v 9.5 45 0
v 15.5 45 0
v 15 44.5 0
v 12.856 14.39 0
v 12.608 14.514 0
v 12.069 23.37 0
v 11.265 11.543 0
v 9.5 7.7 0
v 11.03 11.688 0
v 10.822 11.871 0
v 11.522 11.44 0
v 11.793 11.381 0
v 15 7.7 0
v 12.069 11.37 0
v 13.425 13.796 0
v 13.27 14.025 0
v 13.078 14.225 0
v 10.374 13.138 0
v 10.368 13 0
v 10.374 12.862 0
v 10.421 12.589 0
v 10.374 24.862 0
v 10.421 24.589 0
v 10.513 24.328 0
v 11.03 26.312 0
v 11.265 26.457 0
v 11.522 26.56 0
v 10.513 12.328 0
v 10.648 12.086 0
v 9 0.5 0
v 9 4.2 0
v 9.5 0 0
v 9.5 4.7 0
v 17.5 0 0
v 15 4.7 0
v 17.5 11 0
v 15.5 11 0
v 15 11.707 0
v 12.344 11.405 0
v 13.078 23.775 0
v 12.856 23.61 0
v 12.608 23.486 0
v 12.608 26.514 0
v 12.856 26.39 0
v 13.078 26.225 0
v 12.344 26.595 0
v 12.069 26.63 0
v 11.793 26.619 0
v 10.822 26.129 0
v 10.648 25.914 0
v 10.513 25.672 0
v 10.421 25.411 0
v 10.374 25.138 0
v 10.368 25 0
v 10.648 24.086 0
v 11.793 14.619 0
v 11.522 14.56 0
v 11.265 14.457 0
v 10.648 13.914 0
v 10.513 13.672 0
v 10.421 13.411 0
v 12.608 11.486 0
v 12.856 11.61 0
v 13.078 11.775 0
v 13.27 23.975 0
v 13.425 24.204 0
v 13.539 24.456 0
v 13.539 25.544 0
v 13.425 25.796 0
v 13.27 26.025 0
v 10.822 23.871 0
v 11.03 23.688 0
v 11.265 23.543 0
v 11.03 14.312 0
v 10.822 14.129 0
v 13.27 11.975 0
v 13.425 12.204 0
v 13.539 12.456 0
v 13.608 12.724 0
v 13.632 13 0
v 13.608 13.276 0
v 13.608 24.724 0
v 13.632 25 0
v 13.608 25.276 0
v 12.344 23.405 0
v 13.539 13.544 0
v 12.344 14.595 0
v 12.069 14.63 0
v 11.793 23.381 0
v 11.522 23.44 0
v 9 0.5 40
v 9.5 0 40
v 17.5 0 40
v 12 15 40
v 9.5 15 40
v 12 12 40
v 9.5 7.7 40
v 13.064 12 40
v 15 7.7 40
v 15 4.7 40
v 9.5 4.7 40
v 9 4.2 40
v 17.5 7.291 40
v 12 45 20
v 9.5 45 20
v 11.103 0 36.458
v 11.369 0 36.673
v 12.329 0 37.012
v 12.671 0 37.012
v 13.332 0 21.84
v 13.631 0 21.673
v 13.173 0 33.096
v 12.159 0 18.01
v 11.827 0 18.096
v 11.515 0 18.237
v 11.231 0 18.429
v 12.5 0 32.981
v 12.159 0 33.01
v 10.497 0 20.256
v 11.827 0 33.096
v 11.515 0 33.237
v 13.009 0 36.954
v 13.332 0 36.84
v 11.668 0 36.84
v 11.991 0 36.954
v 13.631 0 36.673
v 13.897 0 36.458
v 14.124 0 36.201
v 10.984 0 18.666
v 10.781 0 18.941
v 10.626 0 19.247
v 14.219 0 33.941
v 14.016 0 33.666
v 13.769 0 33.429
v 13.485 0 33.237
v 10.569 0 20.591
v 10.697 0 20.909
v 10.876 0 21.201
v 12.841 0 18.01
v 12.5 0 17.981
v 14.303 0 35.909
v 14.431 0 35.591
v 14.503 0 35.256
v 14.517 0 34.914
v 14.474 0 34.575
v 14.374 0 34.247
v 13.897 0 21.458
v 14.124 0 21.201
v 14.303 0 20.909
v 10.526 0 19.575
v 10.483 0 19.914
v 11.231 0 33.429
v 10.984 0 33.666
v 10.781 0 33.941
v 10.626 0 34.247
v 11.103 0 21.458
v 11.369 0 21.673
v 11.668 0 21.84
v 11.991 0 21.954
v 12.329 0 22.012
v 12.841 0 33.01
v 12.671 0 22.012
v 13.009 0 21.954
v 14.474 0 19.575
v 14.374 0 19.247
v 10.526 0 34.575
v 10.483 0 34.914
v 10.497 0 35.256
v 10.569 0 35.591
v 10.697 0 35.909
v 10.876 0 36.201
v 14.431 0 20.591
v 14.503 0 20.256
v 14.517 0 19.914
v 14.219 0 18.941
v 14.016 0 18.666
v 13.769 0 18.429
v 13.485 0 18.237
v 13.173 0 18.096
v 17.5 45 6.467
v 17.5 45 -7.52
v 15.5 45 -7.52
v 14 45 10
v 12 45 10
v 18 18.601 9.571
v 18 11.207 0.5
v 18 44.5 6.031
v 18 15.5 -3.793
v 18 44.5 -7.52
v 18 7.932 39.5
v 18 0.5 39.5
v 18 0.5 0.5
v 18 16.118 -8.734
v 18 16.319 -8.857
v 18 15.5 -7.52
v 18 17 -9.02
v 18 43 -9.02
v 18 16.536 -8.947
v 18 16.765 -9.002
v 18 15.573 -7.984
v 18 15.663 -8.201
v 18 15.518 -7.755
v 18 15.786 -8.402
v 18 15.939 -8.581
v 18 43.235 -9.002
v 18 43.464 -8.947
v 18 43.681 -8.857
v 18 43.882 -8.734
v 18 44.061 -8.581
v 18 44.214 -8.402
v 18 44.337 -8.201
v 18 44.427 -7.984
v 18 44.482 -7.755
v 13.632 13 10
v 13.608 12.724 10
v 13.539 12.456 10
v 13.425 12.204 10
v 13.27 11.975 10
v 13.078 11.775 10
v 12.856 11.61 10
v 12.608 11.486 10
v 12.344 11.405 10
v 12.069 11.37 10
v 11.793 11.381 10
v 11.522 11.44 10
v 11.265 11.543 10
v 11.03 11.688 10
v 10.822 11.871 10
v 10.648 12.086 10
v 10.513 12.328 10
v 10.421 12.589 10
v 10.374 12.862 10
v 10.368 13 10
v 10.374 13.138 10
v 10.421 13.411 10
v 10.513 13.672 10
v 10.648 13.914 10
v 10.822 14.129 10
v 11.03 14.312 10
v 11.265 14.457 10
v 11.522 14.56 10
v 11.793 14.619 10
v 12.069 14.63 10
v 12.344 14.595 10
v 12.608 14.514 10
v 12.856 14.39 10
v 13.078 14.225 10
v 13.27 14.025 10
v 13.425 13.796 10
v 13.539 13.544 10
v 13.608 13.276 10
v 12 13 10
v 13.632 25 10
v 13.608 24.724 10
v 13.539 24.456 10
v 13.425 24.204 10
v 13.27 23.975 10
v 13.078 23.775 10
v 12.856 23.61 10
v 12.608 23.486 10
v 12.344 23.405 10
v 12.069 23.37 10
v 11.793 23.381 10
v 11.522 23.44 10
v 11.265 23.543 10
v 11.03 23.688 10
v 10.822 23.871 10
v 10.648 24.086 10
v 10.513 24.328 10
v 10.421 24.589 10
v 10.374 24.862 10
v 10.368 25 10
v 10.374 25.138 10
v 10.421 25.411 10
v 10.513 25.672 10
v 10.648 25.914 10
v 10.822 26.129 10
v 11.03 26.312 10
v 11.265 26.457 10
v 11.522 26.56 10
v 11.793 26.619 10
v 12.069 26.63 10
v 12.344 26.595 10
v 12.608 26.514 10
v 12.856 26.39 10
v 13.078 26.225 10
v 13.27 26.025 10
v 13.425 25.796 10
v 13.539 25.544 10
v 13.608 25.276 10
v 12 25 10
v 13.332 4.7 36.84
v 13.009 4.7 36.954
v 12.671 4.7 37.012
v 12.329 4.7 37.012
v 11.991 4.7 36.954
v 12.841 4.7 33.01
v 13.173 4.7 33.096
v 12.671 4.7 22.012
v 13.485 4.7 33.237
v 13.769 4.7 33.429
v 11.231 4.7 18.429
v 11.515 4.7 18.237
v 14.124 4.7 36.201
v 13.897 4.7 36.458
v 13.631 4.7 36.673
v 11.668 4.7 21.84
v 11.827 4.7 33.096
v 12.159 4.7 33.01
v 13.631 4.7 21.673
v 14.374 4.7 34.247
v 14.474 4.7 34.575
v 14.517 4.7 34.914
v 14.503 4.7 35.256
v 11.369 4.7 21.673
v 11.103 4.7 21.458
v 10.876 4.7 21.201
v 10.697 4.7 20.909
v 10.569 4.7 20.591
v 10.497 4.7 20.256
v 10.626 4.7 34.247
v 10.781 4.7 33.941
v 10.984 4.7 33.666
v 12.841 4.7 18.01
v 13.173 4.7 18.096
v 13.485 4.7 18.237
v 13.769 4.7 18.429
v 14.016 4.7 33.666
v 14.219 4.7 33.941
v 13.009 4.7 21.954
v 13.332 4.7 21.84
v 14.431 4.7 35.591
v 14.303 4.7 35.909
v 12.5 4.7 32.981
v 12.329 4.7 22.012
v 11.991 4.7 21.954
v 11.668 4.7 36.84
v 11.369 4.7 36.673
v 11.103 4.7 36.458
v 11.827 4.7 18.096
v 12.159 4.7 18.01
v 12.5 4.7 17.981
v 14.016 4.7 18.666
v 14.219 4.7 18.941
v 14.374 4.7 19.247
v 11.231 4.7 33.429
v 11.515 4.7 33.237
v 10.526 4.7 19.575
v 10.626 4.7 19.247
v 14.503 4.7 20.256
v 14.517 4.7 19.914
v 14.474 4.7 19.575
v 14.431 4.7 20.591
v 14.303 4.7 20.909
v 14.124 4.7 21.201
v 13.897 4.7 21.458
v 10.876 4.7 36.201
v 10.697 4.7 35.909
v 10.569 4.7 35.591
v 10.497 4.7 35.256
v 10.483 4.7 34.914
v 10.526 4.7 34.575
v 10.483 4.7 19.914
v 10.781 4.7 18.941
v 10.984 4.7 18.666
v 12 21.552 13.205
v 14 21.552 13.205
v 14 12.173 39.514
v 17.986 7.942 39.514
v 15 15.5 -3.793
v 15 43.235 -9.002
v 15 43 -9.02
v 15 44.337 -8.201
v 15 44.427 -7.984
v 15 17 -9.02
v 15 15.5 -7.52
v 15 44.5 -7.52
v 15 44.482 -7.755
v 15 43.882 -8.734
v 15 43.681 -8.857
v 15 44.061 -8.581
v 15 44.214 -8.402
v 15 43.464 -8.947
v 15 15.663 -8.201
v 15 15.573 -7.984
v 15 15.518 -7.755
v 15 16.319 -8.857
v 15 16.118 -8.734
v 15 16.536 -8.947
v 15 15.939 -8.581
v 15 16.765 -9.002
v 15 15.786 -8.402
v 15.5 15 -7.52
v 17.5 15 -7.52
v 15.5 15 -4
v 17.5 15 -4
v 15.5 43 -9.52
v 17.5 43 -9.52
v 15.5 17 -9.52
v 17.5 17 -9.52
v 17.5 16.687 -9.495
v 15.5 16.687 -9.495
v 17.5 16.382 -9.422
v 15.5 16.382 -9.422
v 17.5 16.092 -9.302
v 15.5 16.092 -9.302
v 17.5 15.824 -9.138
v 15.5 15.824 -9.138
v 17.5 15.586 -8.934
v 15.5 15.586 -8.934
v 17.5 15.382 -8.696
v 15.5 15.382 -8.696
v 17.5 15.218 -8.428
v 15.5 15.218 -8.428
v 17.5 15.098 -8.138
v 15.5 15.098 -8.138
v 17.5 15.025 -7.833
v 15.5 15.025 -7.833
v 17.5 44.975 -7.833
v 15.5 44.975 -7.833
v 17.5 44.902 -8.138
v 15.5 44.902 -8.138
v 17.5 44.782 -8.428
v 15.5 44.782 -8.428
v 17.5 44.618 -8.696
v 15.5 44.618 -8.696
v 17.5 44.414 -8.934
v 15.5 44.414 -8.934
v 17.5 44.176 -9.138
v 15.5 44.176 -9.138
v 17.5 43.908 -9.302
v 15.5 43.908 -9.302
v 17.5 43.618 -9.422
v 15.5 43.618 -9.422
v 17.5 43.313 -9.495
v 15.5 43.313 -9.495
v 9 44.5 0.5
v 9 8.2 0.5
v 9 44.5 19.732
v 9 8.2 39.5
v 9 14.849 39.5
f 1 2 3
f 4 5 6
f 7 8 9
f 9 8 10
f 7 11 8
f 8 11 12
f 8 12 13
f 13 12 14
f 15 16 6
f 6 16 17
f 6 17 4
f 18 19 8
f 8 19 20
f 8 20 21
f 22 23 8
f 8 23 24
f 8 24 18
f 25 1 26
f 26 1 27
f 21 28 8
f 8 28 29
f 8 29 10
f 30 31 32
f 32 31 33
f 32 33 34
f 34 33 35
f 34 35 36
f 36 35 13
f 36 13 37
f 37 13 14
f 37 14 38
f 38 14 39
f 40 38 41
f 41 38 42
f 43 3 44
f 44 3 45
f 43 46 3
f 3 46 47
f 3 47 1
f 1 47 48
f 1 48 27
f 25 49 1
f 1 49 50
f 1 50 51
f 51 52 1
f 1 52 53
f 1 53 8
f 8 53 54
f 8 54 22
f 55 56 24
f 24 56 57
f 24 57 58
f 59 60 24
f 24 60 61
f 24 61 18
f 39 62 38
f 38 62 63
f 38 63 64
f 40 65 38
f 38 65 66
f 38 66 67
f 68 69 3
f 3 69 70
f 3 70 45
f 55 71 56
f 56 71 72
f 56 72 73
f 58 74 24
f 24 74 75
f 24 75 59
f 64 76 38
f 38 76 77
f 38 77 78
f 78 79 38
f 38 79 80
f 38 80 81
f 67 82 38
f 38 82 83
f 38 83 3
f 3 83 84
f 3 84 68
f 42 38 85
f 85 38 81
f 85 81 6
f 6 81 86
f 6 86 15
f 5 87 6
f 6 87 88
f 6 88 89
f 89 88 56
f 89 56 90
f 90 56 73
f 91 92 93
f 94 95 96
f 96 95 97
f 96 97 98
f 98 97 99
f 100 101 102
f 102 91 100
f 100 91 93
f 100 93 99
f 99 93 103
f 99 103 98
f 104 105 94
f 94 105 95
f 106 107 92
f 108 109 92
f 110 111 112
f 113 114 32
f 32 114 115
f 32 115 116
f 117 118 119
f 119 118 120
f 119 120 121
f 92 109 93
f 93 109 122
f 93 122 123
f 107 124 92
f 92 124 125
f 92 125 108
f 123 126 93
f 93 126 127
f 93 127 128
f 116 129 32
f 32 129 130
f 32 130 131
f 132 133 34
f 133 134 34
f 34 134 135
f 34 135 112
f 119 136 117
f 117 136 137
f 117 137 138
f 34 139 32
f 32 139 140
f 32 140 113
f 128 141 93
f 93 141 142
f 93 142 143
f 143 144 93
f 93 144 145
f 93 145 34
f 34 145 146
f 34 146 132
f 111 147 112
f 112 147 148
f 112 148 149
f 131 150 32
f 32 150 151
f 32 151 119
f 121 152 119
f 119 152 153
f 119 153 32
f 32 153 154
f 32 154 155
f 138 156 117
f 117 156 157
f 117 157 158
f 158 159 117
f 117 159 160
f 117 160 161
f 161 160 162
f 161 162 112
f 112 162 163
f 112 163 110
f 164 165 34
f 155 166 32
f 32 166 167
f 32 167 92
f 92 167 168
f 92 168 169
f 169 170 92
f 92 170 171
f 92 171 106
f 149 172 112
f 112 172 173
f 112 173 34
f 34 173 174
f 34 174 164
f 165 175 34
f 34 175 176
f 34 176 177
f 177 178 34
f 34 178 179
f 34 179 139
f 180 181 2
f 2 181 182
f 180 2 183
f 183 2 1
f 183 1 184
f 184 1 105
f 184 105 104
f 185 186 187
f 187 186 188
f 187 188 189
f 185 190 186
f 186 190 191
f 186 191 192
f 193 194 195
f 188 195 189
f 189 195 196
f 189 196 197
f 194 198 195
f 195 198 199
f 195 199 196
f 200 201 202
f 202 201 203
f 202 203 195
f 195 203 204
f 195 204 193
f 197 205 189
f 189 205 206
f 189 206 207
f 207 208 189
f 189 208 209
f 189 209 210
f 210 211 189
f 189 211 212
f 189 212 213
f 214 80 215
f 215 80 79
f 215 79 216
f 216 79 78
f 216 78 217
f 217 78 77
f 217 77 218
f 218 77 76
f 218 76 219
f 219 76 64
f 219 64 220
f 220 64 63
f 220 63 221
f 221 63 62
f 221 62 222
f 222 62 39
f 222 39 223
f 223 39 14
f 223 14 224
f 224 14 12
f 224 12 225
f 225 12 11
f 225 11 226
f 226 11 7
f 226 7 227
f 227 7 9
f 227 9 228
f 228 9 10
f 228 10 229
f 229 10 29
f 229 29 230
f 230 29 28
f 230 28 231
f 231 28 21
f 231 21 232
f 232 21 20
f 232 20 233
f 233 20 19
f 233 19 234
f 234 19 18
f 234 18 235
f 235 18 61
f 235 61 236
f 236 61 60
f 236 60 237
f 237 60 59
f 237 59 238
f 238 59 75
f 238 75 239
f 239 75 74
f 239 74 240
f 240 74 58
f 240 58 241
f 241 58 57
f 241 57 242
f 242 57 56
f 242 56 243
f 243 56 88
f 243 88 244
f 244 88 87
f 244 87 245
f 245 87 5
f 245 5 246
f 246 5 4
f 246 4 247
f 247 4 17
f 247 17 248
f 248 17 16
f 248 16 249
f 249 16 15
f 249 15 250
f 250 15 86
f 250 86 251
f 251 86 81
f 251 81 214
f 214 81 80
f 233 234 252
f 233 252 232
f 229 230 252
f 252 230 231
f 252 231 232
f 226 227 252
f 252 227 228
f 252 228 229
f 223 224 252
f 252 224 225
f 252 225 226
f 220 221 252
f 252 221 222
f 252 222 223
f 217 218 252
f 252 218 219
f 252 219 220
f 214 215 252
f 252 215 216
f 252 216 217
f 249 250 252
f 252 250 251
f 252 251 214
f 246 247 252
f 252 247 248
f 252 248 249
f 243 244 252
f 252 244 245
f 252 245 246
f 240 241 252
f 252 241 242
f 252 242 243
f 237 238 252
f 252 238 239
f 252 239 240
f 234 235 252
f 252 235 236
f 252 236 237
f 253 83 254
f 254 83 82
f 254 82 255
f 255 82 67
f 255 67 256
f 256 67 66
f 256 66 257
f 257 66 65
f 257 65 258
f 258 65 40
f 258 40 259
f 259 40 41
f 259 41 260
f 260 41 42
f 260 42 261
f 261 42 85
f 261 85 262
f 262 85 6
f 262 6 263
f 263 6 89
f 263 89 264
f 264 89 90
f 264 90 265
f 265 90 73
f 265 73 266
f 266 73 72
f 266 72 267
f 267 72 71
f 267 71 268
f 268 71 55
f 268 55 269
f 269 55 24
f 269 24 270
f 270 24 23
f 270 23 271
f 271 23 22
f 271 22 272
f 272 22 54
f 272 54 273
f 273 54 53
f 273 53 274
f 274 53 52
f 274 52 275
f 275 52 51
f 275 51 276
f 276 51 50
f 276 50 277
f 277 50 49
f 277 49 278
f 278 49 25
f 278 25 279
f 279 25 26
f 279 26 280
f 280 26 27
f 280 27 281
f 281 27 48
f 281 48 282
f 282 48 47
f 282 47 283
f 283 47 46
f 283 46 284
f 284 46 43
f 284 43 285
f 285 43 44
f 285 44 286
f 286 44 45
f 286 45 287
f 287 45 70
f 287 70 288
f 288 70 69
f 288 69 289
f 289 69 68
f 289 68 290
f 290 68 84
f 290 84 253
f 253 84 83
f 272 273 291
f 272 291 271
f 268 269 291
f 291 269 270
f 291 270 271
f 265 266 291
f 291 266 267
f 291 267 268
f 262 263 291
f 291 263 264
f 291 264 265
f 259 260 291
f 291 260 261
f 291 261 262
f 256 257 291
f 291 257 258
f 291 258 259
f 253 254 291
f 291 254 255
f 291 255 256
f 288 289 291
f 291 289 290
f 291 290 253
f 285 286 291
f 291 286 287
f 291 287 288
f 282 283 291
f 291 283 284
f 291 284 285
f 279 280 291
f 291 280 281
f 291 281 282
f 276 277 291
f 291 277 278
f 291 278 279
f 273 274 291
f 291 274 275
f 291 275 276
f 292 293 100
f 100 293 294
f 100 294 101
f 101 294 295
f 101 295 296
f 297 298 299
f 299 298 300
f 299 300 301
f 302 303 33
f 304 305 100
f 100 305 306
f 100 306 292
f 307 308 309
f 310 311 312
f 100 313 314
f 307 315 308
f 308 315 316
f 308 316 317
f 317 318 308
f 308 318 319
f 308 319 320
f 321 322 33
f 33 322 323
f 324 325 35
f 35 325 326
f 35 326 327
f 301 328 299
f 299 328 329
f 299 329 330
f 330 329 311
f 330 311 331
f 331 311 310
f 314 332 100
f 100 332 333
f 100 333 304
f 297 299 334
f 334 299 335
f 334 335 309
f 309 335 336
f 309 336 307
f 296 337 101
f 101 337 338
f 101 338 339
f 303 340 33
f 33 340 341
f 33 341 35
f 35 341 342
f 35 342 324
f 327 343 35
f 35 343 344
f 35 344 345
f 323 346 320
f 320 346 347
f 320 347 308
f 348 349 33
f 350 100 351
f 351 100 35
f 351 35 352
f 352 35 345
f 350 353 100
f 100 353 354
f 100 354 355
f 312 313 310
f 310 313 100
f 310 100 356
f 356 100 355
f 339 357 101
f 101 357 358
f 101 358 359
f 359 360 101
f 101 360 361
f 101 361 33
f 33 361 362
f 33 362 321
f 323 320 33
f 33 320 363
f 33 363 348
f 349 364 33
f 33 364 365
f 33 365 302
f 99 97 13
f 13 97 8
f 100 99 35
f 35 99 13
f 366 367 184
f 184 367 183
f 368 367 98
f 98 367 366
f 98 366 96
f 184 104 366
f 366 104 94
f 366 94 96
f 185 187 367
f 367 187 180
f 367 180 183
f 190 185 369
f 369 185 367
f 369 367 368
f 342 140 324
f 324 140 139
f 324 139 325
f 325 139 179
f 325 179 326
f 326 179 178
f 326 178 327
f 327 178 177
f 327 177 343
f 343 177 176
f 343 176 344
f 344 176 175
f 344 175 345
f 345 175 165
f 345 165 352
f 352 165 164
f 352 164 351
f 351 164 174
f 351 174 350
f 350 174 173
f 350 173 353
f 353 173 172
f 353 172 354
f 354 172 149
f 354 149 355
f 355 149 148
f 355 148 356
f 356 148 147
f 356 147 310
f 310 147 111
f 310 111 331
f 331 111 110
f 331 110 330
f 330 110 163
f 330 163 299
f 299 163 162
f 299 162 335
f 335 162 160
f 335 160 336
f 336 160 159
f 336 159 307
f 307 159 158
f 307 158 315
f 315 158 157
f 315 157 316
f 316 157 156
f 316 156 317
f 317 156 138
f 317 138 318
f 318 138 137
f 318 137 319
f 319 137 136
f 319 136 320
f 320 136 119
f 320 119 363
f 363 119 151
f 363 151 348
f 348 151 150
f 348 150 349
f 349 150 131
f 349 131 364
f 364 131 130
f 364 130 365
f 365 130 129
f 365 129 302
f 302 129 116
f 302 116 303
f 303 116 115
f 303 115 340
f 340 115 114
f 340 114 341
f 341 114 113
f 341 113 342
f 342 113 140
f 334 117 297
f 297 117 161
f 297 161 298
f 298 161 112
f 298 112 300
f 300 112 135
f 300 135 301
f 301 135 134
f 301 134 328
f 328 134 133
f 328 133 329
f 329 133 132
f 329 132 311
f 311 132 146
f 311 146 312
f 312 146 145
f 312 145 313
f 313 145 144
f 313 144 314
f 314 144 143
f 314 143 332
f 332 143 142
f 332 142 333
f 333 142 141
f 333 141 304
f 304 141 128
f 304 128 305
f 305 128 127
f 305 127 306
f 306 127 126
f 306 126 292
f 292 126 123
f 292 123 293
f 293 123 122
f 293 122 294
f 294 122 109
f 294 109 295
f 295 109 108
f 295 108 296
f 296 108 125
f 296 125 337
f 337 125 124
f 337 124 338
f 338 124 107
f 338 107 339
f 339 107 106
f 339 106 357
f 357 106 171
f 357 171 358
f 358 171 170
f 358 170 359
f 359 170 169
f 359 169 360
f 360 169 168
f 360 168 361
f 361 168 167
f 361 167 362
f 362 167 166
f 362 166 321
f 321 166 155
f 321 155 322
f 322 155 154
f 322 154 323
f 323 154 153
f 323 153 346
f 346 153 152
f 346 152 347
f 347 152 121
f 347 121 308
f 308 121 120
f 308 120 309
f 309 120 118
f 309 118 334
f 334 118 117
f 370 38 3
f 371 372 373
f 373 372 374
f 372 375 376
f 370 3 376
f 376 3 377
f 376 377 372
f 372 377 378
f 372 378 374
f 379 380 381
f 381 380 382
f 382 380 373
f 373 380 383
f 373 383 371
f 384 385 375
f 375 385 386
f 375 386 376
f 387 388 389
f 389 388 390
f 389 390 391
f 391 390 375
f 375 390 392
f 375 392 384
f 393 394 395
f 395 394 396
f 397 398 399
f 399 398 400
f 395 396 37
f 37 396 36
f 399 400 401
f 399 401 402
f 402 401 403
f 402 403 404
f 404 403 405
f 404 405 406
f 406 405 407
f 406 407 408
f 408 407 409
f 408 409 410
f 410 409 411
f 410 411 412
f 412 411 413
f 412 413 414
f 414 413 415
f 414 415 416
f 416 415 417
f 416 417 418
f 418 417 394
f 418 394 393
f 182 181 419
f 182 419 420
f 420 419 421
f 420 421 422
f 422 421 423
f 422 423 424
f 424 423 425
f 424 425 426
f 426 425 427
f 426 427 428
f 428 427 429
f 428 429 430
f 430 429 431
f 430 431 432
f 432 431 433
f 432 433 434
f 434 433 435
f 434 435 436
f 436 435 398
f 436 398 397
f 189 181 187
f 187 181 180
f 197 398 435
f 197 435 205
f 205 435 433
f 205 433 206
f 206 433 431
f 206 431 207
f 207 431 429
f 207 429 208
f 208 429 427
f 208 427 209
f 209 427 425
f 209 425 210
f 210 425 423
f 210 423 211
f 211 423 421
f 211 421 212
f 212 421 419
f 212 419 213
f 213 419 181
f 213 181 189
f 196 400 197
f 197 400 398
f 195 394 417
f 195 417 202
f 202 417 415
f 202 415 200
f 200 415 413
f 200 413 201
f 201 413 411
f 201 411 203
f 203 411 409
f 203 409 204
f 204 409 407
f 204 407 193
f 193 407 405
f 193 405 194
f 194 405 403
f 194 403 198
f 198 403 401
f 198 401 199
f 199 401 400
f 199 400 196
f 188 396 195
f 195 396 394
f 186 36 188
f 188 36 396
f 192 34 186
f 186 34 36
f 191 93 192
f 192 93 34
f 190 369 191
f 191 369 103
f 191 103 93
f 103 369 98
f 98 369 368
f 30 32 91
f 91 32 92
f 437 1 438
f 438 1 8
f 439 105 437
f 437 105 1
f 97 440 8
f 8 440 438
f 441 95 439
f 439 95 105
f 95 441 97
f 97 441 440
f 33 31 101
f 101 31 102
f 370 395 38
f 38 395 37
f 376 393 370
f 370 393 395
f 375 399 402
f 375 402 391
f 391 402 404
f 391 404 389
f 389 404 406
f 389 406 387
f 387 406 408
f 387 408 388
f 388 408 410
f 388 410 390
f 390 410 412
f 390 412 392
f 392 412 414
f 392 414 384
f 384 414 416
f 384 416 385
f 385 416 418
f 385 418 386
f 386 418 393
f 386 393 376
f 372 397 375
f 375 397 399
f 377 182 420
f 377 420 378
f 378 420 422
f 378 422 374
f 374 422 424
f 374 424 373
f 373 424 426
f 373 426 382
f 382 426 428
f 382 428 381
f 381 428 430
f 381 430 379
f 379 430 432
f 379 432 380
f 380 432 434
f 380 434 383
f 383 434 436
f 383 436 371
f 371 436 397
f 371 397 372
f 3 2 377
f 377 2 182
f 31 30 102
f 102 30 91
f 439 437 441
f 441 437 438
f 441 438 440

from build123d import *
from OCP.BRepFilletAPI import BRepFilletAPI_MakeChamfer

# Parameters (mm, degrees)
SKETCH1_W           = 9
SKETCH1_H           = 45
SKETCH1_R           = 1.63195
BOSS_EXTRUDE1_DEPTH = 40
SKETCH1_3_R         = 1.63195
CUT_EXTRUDE1_DEPTH  = 10
SKETCH2_W           = 40
SKETCH2_H           = 3
CUT_EXTRUDE2_DEPTH  = 6
CUT_EXTRUDE3_DEPTH  = 9
CUT_EXTRUDE4_DEPTH  = 6
CHAMFER2_SIZE       = 4
SKETCH6_R           = 2.0193
CUT_EXTRUDE5_DEPTH  = 6
SKETCH7_W           = 3
SKETCH7_H           = 30
BOSS_EXTRUDE3_DEPTH = 9.52
CHAMFER3_SIZE       = 4
FILLET1_R           = 2
CHAMFER4_SIZE       = 0.5
CHAMFER4_SIZE2      = 0.681231536
SKETCH8_W           = 73.765636672
SKETCH8_H           = 62.769253432
CUT_EXTRUDE6_DEPTH  = 9


with BuildPart() as part:
    # Sketch1 → Boss-Extrude1 (new body)
    # profile 1 of 3: a face of its own
    with BuildSketch(Plane.XY):
        with Locations((4.5, 22.5)):
            Rectangle(SKETCH1_W, SKETCH1_H)
        with Locations((6, 13)):
            Circle(SKETCH1_R, mode=Mode.SUBTRACT)
        with Locations((6, 25)):
            Circle(SKETCH1_R, mode=Mode.SUBTRACT)
    # profile 2 of 3: a face of its own
    with BuildSketch(Plane.XY):
        with Locations((6, 25)):
            Circle(SKETCH1_R)
    # profile 3 of 3: a face of its own
    with BuildSketch(Plane.XY):
        with Locations((6, 13)):
            Circle(SKETCH1_R)
    extrude(amount=BOSS_EXTRUDE1_DEPTH)

    # Sketch1<3> → Cut-Extrude1 (cut)
    with BuildSketch(Plane.XY):
        with Locations((6, 25)):
            Circle(SKETCH1_3_R)
        with Locations((6, 13)):
            Circle(SKETCH1_3_R)
    extrude(amount=CUT_EXTRUDE1_DEPTH, mode=Mode.SUBTRACT)

    # Sketch2 → Cut-Extrude2 (cut)
    with BuildSketch(Plane(origin=(9, 0, 0), x_dir=(0, 0, -1), z_dir=(1, 0, 0))):
        with Locations((-20, 6.2)):
            Rectangle(SKETCH2_W, SKETCH2_H)
    extrude(amount=-CUT_EXTRUDE2_DEPTH, mode=Mode.SUBTRACT)

    # Sketch3 → Cut-Extrude3 (cut)
    with BuildSketch(Plane(origin=(9, 0, 0), x_dir=(0, 0, -1), z_dir=(1, 0, 0))):
        Polygon((-20, 45), (-40, 15), (-48.379363257, 51.913157268), align=None)
    extrude(amount=-CUT_EXTRUDE3_DEPTH, mode=Mode.SUBTRACT)

    # Sketch5 → Cut-Extrude4 (cut)
    with BuildSketch(Plane.ZY):
        Polygon((20, 45), (10, 45), (13.204776383, 21.55213026), (40, 12), (40, 15), align=None)
    extrude(amount=-CUT_EXTRUDE4_DEPTH, mode=Mode.SUBTRACT)

    # Chamfer2
    chamfer2_edges = [part.edges().sort_by_distance(p)[0] for p in [
        (0, 33.27606513, 11.602388192),
        (0, 16.77606513, 26.602388192),
    ]]
    chamfer(chamfer2_edges, length=CHAMFER2_SIZE)

    # Sketch6 → Cut-Extrude5 (cut)
    with BuildSketch(Plane.XZ):
        with Locations(Location((5.5, 35, 0), (0, 0, 270))):
            Circle(SKETCH6_R)
        with Locations(Location((5.5, 20, 0), (0, 0, 270))):
            Circle(SKETCH6_R)
    extrude(amount=-CUT_EXTRUDE5_DEPTH, mode=Mode.SUBTRACT)

    # Sketch7 → Boss-Extrude3 (add)
    with BuildSketch(Plane(origin=(0, 0, 0), x_dir=(-1, 0, 0), z_dir=(0, 0, -1))):
        with Locations((-1.5, 30)):
            Rectangle(SKETCH7_W, SKETCH7_H)
    extrude(amount=BOSS_EXTRUDE3_DEPTH)

    # Chamfer3
    chamfer3_edges = [part.edges().sort_by_distance(p)[0] for p in [
        (1.5, 15, 0),
    ]]
    chamfer(chamfer3_edges, length=CHAMFER3_SIZE)

    # Fillet1
    fillet1_edges = [part.edges().sort_by_distance(p)[0] for p in [
        (1.5, 45, -9.52),
        (1.5, 15, -9.52),
    ]]
    fillet(fillet1_edges, radius=FILLET1_R)

    # Chamfer4: one chamfer whose edges measure the first distance from different faces: ONE call of the kernel's chamfer builder (chamfer() names one face for all edges)
    chamfer4_edges_1 = [part.edges().sort_by_distance(p)[0] for p in [
        (3, 45, -3.76),
        (3, 44.414213562, -8.934213562),
        (3, 15, -5.76),
        (3, 30, -9.52),
        (3, 15.585786438, -8.934213562),
        (3, 13, -2),
        (9, 7.7, 20),
        (9, 4.7, 20),
        (0, 3.876717178, 40),
        (0, 0, 20),
        (0, 5.5, 0),
        (0, 13, -2),
        (0, 15, -5.76),
        (0, 45, -0.778594073),
        (0, 15.585786438, -8.934213562),
        (0, 44.414213562, -8.934213562),
        (0, 30, -9.52),
        (9, 0, 20),
        (9, 11.35, 40),
        (9, 30, 30),
        (9, 45, 10),
        (9, 26.35, 0),
    ]]
    chamfer4_edges_2 = [part.edges().sort_by_distance(p)[0] for p in [
        (2, 9.876717178, 40),
    ]]
    chamfer4_side_2 = [part.faces().sort_by_distance(p)[0] for p in [
        (1.957665589, 14.938546455, 25.674700071),
    ]]
    chamfer4 = BRepFilletAPI_MakeChamfer(part.part.solid().wrapped)
    for e in chamfer4_edges_1:
        chamfer4.Add(CHAMFER4_SIZE, e.wrapped)
    for e in chamfer4_edges_2:
        chamfer4.Add(CHAMFER4_SIZE, CHAMFER4_SIZE2, e.wrapped, chamfer4_side_2[0].wrapped)  # the first distance lies on this face
    add(Compound.cast(chamfer4.Shape()), mode=Mode.REPLACE)

    # Mirror1: part across plane


with BuildPart() as part_1:
    add(part.part)
    add(part.part.mirror(Plane(origin=(9, 0, 40), x_dir=(0, 0, 1), z_dir=(-1, 0, 0))))

    # Sketch8 → Cut-Extrude6 (cut)
    with BuildSketch(Plane.ZY):
        with Locations((15.385718854, 24.547909709)):
            Rectangle(SKETCH8_W, SKETCH8_H)
    extrude(amount=-CUT_EXTRUDE6_DEPTH, mode=Mode.SUBTRACT)


solid = part_1.part
